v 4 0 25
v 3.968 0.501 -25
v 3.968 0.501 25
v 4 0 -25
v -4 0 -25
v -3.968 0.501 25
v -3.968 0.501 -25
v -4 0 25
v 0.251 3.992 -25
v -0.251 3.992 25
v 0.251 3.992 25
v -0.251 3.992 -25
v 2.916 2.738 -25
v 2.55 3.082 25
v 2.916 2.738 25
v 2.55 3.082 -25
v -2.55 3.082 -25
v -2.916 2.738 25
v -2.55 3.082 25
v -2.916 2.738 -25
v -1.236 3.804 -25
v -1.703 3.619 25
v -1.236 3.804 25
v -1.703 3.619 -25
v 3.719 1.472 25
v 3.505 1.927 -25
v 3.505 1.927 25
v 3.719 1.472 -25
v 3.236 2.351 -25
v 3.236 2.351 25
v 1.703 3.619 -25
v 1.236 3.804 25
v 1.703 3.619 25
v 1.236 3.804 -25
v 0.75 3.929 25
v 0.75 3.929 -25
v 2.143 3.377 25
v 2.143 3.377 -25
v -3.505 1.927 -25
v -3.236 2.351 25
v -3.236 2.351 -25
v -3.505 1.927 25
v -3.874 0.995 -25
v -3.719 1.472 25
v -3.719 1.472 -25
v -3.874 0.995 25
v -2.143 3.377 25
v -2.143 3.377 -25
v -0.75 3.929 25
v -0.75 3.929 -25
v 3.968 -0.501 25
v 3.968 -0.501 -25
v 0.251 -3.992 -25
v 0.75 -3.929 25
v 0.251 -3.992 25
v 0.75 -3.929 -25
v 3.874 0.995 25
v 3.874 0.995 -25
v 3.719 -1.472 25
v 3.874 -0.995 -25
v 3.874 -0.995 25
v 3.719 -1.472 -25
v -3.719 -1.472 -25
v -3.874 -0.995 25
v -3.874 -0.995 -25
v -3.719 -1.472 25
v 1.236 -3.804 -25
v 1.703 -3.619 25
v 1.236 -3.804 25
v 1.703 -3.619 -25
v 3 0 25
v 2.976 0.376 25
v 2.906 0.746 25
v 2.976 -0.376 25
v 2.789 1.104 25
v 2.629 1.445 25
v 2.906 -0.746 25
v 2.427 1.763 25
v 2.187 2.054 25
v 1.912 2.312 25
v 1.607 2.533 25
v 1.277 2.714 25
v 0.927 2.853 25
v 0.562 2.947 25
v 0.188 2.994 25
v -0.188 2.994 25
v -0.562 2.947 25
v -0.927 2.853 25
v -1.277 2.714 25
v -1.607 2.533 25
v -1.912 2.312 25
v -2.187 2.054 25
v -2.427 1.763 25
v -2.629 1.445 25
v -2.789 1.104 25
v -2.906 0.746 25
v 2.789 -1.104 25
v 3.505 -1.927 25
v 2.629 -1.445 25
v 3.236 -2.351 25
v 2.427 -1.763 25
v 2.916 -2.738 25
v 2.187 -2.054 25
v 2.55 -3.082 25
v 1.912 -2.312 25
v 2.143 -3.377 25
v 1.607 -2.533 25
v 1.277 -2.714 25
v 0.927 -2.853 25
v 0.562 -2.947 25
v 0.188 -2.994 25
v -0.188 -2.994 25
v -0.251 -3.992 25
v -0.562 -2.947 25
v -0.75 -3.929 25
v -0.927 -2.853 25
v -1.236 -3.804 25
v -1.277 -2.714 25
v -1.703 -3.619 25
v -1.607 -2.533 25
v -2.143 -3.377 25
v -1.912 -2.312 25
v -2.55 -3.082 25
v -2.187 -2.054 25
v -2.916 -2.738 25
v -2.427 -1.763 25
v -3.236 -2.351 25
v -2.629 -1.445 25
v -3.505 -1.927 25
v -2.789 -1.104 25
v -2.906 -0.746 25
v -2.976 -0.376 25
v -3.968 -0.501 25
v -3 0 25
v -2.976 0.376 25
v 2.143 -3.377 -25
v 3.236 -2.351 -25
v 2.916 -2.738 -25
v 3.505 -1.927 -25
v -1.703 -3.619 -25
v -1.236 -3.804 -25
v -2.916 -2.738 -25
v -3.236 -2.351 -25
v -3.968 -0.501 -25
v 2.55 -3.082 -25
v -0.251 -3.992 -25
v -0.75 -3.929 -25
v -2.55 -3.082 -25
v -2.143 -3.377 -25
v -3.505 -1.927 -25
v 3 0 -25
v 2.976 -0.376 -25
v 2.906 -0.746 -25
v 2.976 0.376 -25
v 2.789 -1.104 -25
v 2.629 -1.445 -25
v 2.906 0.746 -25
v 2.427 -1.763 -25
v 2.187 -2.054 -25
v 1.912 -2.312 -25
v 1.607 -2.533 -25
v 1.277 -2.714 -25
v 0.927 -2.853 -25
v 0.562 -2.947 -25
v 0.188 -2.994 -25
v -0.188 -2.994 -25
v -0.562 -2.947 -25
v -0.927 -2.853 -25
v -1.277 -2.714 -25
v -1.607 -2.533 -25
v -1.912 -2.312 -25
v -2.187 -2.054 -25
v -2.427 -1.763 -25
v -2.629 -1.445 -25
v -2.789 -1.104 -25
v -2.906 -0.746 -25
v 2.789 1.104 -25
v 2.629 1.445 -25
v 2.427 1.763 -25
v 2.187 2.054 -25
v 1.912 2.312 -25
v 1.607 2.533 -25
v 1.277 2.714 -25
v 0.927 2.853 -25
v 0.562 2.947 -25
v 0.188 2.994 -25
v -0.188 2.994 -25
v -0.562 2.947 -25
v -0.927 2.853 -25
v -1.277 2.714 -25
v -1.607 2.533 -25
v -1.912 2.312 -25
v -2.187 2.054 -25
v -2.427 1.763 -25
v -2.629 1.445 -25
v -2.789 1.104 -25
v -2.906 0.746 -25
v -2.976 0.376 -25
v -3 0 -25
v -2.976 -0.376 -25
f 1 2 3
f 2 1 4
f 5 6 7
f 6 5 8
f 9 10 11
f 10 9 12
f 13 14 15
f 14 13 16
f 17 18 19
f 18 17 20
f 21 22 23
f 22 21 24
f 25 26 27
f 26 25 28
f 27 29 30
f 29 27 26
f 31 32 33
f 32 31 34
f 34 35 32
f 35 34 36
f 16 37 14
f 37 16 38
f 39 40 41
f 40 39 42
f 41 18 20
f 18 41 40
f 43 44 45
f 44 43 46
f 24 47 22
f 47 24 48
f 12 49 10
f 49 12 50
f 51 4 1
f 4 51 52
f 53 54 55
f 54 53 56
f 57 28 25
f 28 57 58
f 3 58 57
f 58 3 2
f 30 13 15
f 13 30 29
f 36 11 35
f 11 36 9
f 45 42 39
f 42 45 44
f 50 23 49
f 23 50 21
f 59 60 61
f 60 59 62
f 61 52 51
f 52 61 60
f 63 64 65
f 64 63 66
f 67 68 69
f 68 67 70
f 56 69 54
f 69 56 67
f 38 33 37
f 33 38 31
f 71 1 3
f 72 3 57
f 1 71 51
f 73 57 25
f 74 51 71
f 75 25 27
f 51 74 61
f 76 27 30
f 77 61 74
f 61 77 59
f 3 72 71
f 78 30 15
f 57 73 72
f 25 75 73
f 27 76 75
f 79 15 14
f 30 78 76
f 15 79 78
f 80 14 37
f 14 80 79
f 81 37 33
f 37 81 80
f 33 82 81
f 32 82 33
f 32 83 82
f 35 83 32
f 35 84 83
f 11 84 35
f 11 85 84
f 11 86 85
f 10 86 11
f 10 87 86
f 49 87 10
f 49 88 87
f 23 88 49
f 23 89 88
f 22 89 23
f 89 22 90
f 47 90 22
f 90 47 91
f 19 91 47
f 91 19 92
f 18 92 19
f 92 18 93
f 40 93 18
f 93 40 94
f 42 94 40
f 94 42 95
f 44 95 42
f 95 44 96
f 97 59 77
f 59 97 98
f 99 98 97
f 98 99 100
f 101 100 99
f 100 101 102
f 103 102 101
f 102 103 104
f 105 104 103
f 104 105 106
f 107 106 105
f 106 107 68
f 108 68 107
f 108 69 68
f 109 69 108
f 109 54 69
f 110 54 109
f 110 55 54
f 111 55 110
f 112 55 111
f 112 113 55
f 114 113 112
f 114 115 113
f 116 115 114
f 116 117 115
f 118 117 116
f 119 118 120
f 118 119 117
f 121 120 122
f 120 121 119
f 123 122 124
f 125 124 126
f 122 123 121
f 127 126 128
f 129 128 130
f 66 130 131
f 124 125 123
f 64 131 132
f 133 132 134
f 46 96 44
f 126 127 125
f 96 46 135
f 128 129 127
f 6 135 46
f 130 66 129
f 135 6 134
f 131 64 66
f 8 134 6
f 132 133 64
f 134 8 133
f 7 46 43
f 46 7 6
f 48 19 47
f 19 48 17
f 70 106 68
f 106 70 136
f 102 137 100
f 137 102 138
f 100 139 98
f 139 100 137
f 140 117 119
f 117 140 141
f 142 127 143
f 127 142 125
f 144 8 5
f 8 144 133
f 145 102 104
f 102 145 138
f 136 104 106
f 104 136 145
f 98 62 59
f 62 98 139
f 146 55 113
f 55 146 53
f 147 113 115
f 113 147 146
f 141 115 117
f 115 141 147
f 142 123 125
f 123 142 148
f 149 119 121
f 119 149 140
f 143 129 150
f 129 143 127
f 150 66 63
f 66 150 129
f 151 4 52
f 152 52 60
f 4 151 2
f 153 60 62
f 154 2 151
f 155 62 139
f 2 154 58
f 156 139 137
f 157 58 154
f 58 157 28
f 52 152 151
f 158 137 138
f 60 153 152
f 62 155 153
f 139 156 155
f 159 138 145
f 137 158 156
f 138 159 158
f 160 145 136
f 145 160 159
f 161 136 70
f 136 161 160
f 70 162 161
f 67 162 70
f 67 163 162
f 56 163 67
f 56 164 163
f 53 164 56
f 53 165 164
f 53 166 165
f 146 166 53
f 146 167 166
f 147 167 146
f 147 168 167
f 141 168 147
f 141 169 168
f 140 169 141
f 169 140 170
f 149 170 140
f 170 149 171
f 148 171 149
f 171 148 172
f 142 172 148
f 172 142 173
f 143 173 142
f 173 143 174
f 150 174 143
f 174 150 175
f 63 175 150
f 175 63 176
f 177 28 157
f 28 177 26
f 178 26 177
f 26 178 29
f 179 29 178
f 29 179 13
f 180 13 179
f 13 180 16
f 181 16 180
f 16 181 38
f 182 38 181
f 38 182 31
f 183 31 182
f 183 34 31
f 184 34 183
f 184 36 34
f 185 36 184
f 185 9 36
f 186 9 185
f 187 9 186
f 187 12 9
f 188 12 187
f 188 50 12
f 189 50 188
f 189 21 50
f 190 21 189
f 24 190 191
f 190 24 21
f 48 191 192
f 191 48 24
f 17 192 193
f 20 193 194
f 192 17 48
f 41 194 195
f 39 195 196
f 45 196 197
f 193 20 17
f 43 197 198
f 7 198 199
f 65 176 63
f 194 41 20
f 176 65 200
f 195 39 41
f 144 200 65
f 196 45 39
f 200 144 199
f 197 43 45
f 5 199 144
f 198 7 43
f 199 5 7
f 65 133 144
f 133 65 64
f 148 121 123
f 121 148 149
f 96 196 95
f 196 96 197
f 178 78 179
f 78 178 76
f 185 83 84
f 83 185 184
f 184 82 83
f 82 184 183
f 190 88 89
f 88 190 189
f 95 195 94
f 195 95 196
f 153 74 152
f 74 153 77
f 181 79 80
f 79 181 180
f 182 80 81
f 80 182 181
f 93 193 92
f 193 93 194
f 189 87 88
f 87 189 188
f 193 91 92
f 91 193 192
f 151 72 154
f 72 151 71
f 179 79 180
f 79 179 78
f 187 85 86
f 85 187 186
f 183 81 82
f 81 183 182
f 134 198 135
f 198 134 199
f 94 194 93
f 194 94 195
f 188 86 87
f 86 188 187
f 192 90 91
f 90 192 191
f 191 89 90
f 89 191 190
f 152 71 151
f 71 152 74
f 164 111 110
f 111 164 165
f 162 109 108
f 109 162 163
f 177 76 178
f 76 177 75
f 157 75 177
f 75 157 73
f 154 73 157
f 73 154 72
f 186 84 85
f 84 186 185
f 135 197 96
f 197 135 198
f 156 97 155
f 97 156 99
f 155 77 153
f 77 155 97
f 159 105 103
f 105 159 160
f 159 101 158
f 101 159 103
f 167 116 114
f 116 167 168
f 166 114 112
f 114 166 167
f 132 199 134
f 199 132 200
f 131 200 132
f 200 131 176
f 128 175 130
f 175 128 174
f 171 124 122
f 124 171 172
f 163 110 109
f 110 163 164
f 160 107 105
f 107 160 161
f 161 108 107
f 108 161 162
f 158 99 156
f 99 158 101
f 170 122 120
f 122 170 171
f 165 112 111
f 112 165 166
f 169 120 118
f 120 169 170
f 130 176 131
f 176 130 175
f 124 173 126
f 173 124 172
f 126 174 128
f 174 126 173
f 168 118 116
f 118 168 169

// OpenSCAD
$fn = 50;


difference() {
	union() {
		translate(v = [0, 0, -25.0000000000]) {
			cylinder(h = 50, r = 4.0000000000);
		}
	}
	union() {
		translate(v = [0, 0, -100.0000000000]) {
			cylinder(h = 200, r = 3.0000000000);
		}
	}
}
